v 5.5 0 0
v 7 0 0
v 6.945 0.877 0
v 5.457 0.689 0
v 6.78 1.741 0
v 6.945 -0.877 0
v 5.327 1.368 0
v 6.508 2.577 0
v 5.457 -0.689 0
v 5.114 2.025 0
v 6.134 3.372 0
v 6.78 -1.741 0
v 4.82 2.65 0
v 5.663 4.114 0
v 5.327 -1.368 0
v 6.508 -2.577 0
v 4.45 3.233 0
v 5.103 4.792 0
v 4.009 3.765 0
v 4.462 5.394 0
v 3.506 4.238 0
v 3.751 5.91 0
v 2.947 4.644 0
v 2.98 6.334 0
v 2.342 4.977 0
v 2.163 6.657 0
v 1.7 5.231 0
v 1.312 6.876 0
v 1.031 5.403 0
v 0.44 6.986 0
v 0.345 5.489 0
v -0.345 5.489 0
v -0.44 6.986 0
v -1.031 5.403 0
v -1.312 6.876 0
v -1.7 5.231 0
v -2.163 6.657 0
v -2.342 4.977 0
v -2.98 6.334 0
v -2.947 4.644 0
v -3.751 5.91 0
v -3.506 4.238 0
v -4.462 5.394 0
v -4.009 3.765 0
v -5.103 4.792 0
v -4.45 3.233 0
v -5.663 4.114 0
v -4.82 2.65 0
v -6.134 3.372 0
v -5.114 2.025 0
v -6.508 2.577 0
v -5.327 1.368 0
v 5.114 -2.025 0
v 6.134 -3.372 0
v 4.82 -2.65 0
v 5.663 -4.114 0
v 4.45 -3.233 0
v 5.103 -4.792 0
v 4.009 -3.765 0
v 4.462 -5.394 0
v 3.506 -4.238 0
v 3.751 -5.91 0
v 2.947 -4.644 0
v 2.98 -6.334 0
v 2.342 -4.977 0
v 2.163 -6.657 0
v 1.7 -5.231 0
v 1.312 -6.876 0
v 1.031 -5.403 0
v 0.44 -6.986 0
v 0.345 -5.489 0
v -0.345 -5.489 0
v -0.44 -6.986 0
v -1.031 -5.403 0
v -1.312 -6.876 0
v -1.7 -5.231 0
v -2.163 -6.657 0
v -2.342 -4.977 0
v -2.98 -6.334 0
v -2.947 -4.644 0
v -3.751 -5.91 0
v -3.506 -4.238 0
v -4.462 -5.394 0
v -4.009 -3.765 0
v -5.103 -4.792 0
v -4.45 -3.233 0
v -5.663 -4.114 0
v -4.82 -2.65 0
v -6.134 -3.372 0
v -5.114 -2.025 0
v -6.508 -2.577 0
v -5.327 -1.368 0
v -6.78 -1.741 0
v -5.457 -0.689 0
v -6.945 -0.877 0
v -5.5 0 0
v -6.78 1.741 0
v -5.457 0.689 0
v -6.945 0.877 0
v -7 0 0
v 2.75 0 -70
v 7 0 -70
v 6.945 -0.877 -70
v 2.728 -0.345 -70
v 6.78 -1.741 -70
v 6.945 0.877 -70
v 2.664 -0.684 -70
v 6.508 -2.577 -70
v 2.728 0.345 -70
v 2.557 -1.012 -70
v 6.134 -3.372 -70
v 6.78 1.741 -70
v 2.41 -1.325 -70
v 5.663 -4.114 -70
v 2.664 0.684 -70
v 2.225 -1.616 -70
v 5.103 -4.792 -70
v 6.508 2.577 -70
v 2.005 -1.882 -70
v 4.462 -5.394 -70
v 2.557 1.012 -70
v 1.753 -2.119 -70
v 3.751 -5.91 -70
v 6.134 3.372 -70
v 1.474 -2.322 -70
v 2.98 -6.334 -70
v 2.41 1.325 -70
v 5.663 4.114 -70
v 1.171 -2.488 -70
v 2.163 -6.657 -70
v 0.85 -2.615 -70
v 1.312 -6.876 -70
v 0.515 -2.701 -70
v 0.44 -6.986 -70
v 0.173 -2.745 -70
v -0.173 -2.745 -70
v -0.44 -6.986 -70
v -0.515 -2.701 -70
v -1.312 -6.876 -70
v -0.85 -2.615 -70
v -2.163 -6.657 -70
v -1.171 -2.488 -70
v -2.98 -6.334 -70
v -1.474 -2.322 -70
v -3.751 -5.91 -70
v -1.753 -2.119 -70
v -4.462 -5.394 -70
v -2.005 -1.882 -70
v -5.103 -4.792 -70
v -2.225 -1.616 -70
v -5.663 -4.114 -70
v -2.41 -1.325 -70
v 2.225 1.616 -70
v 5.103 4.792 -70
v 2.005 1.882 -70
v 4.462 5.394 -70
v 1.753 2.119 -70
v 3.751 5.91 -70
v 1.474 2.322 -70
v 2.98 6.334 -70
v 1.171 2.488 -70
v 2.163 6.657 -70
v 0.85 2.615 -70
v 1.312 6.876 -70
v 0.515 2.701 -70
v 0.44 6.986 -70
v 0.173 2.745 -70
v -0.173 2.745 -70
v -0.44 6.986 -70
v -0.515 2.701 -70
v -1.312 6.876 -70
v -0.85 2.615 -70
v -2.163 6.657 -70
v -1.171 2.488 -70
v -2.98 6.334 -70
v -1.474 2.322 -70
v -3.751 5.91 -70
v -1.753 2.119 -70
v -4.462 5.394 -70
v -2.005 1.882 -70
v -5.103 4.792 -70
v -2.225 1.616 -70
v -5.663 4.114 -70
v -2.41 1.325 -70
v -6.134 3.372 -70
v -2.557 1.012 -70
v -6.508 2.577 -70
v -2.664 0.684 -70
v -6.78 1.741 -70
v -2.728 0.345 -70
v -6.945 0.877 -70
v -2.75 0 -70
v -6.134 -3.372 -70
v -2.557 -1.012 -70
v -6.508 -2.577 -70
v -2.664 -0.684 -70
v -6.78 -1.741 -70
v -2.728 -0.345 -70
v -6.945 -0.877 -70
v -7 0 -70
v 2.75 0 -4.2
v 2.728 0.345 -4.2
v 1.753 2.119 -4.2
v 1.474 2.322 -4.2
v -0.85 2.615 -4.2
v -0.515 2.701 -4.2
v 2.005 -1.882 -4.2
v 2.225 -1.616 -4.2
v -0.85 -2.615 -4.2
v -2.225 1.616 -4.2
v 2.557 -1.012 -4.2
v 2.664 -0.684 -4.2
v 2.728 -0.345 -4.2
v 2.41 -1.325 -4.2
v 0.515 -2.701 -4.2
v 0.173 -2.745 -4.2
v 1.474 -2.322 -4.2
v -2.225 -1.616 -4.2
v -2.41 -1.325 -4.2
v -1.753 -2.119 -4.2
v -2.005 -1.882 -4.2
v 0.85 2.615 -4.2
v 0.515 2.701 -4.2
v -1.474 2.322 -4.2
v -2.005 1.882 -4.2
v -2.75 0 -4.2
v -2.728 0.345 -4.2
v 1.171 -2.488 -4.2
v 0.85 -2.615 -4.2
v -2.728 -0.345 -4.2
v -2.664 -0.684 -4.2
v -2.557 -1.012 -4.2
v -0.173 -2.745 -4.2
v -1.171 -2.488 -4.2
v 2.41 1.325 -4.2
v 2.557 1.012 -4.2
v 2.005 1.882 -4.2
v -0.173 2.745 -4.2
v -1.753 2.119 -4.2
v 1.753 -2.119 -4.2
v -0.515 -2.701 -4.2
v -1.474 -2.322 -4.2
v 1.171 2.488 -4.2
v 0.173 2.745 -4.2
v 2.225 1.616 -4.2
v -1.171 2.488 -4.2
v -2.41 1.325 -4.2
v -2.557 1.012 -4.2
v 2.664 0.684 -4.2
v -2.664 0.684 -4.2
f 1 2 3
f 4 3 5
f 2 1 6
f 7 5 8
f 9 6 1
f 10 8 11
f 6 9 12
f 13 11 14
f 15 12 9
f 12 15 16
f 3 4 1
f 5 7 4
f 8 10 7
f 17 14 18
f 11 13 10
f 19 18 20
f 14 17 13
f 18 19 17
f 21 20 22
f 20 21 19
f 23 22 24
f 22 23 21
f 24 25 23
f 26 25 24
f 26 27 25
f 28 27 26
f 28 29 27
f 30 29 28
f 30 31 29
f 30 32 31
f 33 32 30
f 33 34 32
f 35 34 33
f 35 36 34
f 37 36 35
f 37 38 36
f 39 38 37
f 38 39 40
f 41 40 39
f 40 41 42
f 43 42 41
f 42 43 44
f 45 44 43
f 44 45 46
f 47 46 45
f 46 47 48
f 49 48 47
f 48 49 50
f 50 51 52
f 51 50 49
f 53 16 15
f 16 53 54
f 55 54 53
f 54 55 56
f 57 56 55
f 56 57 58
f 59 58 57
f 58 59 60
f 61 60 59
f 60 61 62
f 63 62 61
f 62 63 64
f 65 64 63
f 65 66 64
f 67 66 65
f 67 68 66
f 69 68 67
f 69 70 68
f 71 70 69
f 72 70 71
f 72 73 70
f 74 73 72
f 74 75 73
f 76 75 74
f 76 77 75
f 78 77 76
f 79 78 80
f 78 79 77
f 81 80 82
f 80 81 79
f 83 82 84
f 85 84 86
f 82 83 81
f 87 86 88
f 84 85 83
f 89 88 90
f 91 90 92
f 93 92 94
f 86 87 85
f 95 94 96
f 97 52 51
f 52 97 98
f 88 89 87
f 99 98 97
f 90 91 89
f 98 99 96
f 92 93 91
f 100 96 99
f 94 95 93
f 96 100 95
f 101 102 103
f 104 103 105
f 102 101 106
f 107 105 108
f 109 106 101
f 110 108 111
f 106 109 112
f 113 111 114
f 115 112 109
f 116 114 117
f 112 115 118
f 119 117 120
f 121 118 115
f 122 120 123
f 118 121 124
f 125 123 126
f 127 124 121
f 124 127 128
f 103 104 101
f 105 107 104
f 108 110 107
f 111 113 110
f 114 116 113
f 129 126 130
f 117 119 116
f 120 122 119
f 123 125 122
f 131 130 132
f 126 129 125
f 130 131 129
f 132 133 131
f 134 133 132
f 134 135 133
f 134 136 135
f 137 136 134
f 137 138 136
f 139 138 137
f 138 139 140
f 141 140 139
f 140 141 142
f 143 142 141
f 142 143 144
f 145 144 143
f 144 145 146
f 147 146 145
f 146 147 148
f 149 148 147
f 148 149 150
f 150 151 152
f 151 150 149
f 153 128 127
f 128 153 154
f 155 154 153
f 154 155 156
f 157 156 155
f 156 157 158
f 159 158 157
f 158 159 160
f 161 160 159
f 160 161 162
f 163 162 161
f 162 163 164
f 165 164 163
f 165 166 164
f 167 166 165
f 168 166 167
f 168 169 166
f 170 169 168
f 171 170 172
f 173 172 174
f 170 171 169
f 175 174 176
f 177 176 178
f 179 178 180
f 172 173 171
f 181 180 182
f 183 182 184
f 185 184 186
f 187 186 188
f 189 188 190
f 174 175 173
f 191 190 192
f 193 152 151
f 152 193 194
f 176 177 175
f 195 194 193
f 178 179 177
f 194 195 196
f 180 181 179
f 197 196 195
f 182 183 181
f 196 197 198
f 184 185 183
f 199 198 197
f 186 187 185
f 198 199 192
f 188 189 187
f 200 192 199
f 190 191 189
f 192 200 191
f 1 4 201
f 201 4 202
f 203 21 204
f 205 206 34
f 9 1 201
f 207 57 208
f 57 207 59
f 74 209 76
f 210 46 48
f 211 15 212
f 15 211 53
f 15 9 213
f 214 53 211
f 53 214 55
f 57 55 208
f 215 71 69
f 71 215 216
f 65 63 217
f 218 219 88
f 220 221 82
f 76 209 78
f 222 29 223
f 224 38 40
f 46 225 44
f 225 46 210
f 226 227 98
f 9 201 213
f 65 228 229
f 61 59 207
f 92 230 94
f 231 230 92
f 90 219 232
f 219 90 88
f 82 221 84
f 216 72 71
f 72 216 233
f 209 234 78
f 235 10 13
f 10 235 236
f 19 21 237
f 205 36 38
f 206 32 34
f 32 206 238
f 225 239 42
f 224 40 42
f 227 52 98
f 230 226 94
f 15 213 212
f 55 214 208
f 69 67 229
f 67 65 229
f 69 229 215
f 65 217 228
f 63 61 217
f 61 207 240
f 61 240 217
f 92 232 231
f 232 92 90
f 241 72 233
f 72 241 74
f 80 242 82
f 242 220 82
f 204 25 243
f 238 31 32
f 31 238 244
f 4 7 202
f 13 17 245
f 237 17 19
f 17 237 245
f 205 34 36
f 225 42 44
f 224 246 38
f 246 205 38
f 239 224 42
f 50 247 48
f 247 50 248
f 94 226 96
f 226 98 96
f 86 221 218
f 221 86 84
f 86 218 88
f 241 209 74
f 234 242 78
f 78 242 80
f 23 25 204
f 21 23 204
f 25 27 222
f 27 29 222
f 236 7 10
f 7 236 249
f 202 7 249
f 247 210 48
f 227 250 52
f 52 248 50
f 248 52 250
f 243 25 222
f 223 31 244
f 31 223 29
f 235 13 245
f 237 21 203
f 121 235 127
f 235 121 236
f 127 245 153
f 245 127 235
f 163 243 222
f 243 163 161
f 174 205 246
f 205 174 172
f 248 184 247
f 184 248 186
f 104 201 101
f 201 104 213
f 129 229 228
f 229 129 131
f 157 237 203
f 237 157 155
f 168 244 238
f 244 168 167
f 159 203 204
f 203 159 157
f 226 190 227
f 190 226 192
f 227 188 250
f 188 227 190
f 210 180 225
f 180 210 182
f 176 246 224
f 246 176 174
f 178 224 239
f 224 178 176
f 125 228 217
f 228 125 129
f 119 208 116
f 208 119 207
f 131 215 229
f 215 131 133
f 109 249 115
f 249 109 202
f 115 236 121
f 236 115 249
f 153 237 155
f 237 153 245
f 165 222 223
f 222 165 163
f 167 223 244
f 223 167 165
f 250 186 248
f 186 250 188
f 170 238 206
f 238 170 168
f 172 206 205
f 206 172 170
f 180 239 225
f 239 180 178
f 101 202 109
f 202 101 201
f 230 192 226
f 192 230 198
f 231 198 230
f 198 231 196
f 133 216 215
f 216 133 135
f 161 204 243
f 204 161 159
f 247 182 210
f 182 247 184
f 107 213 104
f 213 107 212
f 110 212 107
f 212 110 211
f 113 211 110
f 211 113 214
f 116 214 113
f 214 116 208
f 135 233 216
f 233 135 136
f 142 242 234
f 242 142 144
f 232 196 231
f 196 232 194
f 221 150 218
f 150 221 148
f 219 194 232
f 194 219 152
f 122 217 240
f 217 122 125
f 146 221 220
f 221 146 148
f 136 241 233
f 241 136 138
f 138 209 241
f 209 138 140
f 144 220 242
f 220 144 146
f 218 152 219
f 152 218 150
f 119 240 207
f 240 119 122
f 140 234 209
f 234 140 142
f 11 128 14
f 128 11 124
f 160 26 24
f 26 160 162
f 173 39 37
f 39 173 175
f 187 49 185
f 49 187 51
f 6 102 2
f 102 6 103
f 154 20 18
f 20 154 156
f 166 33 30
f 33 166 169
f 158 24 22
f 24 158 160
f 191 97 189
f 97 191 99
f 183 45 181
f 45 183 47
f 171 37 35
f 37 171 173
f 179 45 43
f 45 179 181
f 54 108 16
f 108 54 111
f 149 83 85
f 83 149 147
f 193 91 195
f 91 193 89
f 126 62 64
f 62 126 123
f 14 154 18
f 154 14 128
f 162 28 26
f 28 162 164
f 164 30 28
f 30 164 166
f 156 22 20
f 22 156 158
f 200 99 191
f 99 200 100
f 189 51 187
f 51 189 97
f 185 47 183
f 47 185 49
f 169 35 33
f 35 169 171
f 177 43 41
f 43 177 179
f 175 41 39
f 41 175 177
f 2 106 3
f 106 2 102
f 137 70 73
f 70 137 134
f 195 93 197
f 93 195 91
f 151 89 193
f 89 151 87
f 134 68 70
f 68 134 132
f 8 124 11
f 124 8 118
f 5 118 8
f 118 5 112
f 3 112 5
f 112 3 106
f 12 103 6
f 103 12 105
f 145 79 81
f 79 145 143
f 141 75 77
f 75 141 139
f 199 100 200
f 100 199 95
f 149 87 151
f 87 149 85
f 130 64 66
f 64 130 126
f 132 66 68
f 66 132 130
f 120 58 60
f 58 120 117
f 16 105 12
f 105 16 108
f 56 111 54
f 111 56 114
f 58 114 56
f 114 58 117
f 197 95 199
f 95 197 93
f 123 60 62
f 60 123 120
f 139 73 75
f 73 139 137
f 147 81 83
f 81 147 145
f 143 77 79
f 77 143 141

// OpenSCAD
$fn = 50;


difference() {
	union() {
		translate(v = [0, 0, -70.0000000000]) {
			cylinder(h = 70, r = 7.0000000000);
		}
		cylinder(h = 0, r = 17.0000000000);
	}
	union() {
		translate(v = [0, 0, 0]) {
			rotate(a = [0, 0, 0]) {
				difference() {
					union() {
						#translate(v = [0, 0, -70.0000000000]) {
							cylinder(h = 70, r = 2.2500000000);
						}
						#translate(v = [0, 0, -4.2000000000]) {
							cylinder(h = 4.2000000000, r = 7.0000000000, r1 = 2.7500000000, r2 = 5.5000000000);
						}
						#translate(v = [0, 0, -70.0000000000]) {
							cylinder(h = 70, r = 2.7500000000);
						}
						#translate(v = [0, 0, -70.0000000000]) {
							cylinder(h = 70, r = 2.2500000000);
						}
					}
					union();
				}
			}
		}
	}
}
